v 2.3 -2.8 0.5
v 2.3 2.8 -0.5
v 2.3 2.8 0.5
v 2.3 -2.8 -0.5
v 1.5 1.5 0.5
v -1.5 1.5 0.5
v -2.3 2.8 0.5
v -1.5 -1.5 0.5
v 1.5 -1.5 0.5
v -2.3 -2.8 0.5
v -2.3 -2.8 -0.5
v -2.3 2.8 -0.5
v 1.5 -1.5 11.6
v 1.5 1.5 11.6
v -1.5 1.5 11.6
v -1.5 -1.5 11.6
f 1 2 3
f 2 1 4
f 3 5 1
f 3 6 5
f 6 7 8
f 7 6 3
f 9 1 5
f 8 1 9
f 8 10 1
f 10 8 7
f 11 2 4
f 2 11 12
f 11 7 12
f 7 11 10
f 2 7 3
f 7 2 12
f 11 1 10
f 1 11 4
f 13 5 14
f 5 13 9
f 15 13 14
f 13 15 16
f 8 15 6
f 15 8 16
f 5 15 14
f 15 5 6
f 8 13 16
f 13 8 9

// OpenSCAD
$fn=100;

cube([4.6,5.6,1],center=true);


translate([0,0,5.6]) cube([3,3,12],center=true);
